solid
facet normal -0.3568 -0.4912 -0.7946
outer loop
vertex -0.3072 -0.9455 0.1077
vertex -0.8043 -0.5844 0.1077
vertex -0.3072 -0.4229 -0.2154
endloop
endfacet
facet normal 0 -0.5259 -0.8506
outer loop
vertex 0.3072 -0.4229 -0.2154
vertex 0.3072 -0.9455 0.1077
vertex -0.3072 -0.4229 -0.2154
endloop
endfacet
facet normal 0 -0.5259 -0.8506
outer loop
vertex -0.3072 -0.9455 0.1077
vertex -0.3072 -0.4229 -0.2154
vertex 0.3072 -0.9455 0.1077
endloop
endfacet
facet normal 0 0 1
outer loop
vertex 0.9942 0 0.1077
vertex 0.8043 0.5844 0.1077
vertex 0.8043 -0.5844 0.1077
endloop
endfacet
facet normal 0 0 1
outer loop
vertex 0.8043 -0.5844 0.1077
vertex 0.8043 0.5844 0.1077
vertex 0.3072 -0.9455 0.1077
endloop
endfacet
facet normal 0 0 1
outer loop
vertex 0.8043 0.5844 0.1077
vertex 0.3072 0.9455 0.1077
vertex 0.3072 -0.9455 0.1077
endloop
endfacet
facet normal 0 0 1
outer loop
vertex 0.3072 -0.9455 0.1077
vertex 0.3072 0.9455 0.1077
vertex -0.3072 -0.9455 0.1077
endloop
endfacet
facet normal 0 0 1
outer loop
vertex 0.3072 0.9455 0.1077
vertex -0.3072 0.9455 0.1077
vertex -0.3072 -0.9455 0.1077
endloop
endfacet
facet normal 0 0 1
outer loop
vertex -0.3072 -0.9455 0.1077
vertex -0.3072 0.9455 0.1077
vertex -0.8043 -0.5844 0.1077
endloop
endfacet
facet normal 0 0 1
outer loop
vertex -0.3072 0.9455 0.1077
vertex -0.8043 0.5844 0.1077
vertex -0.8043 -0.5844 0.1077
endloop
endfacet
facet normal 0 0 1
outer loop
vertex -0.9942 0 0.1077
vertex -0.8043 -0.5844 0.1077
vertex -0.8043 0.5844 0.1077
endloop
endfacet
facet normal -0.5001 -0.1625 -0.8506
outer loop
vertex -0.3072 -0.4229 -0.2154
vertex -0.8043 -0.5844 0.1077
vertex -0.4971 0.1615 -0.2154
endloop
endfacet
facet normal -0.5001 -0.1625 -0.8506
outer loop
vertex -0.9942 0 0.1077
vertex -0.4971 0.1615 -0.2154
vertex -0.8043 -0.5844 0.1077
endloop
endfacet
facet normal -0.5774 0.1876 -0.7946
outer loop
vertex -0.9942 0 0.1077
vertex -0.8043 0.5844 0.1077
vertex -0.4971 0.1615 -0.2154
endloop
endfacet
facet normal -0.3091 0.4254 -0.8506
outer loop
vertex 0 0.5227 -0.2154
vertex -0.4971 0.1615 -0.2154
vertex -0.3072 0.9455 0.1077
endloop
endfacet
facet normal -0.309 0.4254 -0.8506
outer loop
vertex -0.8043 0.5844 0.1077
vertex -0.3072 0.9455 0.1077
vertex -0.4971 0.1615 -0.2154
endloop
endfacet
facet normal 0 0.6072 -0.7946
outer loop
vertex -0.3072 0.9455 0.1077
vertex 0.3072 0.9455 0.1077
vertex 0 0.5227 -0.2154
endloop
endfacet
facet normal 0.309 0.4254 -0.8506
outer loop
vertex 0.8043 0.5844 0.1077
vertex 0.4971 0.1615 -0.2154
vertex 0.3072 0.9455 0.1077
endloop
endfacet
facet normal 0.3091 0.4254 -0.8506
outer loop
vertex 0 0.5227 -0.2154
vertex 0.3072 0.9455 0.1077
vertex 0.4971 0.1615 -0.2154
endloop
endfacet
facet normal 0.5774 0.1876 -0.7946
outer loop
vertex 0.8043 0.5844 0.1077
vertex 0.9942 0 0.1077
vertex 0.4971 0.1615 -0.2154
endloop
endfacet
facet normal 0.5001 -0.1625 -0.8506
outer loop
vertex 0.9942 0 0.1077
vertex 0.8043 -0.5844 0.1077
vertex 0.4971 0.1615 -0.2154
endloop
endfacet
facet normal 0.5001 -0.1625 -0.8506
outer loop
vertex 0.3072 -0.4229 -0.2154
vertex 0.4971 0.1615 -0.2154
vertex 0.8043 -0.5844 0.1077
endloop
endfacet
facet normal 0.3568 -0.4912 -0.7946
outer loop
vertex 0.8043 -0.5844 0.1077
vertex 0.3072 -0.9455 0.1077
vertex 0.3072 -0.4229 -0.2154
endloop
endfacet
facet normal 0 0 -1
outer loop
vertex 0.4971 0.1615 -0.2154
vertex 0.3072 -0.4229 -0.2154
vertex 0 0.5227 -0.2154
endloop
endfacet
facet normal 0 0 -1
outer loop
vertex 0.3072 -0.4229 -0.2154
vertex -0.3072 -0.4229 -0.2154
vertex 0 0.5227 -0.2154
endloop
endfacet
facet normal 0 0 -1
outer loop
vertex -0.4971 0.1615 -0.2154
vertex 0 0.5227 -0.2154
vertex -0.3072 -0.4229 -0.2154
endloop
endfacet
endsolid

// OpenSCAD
polyhedron( points = [[-0.307220352470243, -0.945527021180422, 0.107676864951284], [-0.804313324901168, -0.584367836282201, 0.107676864951284], [-0.994185944674548, 4.03388078280238e-11, 0.107676864951284], [-0.804313324743751, 0.584367836311724, 0.107676864951284], [-0.307220352385341, 0.945527021020866, 0.107676864951284], [0.307220352538977, 0.945527020965695, 0.107676864951284], [0.804313324832525, 0.584367836167281, 0.107676864951284], [0.994185944658378, -1.3820537497557e-10, 0.107676864951284], [0.804313324780051, -0.584367836426645, 0.107676864951284], [0.307220352454073, -0.945527021180422, 0.107676864951284], [-0.307220352442657, -0.422852538147046, -0.215353729715423], [-0.497092972249157, 0.161515297532343, -0.215353730053659], [5.47742635976967e-11, 0.522674482178762, -0.215353730053659], [0.497092972271835, 0.161515297412779, -0.21535373005366], [0.307220352276252, -0.422852538274843, -0.215353729636439]], faces = [[0, 1, 10], [0, 10, 14, 9], [0, 9, 8, 7, 6, 5, 4, 3, 2, 1], [1, 2, 11, 10], [2, 3, 11], [3, 4, 12, 11], [4, 5, 12], [5, 6, 13, 12], [6, 7, 13], [7, 8, 14, 13], [8, 9, 14], [10, 11, 12, 13, 14]]);
